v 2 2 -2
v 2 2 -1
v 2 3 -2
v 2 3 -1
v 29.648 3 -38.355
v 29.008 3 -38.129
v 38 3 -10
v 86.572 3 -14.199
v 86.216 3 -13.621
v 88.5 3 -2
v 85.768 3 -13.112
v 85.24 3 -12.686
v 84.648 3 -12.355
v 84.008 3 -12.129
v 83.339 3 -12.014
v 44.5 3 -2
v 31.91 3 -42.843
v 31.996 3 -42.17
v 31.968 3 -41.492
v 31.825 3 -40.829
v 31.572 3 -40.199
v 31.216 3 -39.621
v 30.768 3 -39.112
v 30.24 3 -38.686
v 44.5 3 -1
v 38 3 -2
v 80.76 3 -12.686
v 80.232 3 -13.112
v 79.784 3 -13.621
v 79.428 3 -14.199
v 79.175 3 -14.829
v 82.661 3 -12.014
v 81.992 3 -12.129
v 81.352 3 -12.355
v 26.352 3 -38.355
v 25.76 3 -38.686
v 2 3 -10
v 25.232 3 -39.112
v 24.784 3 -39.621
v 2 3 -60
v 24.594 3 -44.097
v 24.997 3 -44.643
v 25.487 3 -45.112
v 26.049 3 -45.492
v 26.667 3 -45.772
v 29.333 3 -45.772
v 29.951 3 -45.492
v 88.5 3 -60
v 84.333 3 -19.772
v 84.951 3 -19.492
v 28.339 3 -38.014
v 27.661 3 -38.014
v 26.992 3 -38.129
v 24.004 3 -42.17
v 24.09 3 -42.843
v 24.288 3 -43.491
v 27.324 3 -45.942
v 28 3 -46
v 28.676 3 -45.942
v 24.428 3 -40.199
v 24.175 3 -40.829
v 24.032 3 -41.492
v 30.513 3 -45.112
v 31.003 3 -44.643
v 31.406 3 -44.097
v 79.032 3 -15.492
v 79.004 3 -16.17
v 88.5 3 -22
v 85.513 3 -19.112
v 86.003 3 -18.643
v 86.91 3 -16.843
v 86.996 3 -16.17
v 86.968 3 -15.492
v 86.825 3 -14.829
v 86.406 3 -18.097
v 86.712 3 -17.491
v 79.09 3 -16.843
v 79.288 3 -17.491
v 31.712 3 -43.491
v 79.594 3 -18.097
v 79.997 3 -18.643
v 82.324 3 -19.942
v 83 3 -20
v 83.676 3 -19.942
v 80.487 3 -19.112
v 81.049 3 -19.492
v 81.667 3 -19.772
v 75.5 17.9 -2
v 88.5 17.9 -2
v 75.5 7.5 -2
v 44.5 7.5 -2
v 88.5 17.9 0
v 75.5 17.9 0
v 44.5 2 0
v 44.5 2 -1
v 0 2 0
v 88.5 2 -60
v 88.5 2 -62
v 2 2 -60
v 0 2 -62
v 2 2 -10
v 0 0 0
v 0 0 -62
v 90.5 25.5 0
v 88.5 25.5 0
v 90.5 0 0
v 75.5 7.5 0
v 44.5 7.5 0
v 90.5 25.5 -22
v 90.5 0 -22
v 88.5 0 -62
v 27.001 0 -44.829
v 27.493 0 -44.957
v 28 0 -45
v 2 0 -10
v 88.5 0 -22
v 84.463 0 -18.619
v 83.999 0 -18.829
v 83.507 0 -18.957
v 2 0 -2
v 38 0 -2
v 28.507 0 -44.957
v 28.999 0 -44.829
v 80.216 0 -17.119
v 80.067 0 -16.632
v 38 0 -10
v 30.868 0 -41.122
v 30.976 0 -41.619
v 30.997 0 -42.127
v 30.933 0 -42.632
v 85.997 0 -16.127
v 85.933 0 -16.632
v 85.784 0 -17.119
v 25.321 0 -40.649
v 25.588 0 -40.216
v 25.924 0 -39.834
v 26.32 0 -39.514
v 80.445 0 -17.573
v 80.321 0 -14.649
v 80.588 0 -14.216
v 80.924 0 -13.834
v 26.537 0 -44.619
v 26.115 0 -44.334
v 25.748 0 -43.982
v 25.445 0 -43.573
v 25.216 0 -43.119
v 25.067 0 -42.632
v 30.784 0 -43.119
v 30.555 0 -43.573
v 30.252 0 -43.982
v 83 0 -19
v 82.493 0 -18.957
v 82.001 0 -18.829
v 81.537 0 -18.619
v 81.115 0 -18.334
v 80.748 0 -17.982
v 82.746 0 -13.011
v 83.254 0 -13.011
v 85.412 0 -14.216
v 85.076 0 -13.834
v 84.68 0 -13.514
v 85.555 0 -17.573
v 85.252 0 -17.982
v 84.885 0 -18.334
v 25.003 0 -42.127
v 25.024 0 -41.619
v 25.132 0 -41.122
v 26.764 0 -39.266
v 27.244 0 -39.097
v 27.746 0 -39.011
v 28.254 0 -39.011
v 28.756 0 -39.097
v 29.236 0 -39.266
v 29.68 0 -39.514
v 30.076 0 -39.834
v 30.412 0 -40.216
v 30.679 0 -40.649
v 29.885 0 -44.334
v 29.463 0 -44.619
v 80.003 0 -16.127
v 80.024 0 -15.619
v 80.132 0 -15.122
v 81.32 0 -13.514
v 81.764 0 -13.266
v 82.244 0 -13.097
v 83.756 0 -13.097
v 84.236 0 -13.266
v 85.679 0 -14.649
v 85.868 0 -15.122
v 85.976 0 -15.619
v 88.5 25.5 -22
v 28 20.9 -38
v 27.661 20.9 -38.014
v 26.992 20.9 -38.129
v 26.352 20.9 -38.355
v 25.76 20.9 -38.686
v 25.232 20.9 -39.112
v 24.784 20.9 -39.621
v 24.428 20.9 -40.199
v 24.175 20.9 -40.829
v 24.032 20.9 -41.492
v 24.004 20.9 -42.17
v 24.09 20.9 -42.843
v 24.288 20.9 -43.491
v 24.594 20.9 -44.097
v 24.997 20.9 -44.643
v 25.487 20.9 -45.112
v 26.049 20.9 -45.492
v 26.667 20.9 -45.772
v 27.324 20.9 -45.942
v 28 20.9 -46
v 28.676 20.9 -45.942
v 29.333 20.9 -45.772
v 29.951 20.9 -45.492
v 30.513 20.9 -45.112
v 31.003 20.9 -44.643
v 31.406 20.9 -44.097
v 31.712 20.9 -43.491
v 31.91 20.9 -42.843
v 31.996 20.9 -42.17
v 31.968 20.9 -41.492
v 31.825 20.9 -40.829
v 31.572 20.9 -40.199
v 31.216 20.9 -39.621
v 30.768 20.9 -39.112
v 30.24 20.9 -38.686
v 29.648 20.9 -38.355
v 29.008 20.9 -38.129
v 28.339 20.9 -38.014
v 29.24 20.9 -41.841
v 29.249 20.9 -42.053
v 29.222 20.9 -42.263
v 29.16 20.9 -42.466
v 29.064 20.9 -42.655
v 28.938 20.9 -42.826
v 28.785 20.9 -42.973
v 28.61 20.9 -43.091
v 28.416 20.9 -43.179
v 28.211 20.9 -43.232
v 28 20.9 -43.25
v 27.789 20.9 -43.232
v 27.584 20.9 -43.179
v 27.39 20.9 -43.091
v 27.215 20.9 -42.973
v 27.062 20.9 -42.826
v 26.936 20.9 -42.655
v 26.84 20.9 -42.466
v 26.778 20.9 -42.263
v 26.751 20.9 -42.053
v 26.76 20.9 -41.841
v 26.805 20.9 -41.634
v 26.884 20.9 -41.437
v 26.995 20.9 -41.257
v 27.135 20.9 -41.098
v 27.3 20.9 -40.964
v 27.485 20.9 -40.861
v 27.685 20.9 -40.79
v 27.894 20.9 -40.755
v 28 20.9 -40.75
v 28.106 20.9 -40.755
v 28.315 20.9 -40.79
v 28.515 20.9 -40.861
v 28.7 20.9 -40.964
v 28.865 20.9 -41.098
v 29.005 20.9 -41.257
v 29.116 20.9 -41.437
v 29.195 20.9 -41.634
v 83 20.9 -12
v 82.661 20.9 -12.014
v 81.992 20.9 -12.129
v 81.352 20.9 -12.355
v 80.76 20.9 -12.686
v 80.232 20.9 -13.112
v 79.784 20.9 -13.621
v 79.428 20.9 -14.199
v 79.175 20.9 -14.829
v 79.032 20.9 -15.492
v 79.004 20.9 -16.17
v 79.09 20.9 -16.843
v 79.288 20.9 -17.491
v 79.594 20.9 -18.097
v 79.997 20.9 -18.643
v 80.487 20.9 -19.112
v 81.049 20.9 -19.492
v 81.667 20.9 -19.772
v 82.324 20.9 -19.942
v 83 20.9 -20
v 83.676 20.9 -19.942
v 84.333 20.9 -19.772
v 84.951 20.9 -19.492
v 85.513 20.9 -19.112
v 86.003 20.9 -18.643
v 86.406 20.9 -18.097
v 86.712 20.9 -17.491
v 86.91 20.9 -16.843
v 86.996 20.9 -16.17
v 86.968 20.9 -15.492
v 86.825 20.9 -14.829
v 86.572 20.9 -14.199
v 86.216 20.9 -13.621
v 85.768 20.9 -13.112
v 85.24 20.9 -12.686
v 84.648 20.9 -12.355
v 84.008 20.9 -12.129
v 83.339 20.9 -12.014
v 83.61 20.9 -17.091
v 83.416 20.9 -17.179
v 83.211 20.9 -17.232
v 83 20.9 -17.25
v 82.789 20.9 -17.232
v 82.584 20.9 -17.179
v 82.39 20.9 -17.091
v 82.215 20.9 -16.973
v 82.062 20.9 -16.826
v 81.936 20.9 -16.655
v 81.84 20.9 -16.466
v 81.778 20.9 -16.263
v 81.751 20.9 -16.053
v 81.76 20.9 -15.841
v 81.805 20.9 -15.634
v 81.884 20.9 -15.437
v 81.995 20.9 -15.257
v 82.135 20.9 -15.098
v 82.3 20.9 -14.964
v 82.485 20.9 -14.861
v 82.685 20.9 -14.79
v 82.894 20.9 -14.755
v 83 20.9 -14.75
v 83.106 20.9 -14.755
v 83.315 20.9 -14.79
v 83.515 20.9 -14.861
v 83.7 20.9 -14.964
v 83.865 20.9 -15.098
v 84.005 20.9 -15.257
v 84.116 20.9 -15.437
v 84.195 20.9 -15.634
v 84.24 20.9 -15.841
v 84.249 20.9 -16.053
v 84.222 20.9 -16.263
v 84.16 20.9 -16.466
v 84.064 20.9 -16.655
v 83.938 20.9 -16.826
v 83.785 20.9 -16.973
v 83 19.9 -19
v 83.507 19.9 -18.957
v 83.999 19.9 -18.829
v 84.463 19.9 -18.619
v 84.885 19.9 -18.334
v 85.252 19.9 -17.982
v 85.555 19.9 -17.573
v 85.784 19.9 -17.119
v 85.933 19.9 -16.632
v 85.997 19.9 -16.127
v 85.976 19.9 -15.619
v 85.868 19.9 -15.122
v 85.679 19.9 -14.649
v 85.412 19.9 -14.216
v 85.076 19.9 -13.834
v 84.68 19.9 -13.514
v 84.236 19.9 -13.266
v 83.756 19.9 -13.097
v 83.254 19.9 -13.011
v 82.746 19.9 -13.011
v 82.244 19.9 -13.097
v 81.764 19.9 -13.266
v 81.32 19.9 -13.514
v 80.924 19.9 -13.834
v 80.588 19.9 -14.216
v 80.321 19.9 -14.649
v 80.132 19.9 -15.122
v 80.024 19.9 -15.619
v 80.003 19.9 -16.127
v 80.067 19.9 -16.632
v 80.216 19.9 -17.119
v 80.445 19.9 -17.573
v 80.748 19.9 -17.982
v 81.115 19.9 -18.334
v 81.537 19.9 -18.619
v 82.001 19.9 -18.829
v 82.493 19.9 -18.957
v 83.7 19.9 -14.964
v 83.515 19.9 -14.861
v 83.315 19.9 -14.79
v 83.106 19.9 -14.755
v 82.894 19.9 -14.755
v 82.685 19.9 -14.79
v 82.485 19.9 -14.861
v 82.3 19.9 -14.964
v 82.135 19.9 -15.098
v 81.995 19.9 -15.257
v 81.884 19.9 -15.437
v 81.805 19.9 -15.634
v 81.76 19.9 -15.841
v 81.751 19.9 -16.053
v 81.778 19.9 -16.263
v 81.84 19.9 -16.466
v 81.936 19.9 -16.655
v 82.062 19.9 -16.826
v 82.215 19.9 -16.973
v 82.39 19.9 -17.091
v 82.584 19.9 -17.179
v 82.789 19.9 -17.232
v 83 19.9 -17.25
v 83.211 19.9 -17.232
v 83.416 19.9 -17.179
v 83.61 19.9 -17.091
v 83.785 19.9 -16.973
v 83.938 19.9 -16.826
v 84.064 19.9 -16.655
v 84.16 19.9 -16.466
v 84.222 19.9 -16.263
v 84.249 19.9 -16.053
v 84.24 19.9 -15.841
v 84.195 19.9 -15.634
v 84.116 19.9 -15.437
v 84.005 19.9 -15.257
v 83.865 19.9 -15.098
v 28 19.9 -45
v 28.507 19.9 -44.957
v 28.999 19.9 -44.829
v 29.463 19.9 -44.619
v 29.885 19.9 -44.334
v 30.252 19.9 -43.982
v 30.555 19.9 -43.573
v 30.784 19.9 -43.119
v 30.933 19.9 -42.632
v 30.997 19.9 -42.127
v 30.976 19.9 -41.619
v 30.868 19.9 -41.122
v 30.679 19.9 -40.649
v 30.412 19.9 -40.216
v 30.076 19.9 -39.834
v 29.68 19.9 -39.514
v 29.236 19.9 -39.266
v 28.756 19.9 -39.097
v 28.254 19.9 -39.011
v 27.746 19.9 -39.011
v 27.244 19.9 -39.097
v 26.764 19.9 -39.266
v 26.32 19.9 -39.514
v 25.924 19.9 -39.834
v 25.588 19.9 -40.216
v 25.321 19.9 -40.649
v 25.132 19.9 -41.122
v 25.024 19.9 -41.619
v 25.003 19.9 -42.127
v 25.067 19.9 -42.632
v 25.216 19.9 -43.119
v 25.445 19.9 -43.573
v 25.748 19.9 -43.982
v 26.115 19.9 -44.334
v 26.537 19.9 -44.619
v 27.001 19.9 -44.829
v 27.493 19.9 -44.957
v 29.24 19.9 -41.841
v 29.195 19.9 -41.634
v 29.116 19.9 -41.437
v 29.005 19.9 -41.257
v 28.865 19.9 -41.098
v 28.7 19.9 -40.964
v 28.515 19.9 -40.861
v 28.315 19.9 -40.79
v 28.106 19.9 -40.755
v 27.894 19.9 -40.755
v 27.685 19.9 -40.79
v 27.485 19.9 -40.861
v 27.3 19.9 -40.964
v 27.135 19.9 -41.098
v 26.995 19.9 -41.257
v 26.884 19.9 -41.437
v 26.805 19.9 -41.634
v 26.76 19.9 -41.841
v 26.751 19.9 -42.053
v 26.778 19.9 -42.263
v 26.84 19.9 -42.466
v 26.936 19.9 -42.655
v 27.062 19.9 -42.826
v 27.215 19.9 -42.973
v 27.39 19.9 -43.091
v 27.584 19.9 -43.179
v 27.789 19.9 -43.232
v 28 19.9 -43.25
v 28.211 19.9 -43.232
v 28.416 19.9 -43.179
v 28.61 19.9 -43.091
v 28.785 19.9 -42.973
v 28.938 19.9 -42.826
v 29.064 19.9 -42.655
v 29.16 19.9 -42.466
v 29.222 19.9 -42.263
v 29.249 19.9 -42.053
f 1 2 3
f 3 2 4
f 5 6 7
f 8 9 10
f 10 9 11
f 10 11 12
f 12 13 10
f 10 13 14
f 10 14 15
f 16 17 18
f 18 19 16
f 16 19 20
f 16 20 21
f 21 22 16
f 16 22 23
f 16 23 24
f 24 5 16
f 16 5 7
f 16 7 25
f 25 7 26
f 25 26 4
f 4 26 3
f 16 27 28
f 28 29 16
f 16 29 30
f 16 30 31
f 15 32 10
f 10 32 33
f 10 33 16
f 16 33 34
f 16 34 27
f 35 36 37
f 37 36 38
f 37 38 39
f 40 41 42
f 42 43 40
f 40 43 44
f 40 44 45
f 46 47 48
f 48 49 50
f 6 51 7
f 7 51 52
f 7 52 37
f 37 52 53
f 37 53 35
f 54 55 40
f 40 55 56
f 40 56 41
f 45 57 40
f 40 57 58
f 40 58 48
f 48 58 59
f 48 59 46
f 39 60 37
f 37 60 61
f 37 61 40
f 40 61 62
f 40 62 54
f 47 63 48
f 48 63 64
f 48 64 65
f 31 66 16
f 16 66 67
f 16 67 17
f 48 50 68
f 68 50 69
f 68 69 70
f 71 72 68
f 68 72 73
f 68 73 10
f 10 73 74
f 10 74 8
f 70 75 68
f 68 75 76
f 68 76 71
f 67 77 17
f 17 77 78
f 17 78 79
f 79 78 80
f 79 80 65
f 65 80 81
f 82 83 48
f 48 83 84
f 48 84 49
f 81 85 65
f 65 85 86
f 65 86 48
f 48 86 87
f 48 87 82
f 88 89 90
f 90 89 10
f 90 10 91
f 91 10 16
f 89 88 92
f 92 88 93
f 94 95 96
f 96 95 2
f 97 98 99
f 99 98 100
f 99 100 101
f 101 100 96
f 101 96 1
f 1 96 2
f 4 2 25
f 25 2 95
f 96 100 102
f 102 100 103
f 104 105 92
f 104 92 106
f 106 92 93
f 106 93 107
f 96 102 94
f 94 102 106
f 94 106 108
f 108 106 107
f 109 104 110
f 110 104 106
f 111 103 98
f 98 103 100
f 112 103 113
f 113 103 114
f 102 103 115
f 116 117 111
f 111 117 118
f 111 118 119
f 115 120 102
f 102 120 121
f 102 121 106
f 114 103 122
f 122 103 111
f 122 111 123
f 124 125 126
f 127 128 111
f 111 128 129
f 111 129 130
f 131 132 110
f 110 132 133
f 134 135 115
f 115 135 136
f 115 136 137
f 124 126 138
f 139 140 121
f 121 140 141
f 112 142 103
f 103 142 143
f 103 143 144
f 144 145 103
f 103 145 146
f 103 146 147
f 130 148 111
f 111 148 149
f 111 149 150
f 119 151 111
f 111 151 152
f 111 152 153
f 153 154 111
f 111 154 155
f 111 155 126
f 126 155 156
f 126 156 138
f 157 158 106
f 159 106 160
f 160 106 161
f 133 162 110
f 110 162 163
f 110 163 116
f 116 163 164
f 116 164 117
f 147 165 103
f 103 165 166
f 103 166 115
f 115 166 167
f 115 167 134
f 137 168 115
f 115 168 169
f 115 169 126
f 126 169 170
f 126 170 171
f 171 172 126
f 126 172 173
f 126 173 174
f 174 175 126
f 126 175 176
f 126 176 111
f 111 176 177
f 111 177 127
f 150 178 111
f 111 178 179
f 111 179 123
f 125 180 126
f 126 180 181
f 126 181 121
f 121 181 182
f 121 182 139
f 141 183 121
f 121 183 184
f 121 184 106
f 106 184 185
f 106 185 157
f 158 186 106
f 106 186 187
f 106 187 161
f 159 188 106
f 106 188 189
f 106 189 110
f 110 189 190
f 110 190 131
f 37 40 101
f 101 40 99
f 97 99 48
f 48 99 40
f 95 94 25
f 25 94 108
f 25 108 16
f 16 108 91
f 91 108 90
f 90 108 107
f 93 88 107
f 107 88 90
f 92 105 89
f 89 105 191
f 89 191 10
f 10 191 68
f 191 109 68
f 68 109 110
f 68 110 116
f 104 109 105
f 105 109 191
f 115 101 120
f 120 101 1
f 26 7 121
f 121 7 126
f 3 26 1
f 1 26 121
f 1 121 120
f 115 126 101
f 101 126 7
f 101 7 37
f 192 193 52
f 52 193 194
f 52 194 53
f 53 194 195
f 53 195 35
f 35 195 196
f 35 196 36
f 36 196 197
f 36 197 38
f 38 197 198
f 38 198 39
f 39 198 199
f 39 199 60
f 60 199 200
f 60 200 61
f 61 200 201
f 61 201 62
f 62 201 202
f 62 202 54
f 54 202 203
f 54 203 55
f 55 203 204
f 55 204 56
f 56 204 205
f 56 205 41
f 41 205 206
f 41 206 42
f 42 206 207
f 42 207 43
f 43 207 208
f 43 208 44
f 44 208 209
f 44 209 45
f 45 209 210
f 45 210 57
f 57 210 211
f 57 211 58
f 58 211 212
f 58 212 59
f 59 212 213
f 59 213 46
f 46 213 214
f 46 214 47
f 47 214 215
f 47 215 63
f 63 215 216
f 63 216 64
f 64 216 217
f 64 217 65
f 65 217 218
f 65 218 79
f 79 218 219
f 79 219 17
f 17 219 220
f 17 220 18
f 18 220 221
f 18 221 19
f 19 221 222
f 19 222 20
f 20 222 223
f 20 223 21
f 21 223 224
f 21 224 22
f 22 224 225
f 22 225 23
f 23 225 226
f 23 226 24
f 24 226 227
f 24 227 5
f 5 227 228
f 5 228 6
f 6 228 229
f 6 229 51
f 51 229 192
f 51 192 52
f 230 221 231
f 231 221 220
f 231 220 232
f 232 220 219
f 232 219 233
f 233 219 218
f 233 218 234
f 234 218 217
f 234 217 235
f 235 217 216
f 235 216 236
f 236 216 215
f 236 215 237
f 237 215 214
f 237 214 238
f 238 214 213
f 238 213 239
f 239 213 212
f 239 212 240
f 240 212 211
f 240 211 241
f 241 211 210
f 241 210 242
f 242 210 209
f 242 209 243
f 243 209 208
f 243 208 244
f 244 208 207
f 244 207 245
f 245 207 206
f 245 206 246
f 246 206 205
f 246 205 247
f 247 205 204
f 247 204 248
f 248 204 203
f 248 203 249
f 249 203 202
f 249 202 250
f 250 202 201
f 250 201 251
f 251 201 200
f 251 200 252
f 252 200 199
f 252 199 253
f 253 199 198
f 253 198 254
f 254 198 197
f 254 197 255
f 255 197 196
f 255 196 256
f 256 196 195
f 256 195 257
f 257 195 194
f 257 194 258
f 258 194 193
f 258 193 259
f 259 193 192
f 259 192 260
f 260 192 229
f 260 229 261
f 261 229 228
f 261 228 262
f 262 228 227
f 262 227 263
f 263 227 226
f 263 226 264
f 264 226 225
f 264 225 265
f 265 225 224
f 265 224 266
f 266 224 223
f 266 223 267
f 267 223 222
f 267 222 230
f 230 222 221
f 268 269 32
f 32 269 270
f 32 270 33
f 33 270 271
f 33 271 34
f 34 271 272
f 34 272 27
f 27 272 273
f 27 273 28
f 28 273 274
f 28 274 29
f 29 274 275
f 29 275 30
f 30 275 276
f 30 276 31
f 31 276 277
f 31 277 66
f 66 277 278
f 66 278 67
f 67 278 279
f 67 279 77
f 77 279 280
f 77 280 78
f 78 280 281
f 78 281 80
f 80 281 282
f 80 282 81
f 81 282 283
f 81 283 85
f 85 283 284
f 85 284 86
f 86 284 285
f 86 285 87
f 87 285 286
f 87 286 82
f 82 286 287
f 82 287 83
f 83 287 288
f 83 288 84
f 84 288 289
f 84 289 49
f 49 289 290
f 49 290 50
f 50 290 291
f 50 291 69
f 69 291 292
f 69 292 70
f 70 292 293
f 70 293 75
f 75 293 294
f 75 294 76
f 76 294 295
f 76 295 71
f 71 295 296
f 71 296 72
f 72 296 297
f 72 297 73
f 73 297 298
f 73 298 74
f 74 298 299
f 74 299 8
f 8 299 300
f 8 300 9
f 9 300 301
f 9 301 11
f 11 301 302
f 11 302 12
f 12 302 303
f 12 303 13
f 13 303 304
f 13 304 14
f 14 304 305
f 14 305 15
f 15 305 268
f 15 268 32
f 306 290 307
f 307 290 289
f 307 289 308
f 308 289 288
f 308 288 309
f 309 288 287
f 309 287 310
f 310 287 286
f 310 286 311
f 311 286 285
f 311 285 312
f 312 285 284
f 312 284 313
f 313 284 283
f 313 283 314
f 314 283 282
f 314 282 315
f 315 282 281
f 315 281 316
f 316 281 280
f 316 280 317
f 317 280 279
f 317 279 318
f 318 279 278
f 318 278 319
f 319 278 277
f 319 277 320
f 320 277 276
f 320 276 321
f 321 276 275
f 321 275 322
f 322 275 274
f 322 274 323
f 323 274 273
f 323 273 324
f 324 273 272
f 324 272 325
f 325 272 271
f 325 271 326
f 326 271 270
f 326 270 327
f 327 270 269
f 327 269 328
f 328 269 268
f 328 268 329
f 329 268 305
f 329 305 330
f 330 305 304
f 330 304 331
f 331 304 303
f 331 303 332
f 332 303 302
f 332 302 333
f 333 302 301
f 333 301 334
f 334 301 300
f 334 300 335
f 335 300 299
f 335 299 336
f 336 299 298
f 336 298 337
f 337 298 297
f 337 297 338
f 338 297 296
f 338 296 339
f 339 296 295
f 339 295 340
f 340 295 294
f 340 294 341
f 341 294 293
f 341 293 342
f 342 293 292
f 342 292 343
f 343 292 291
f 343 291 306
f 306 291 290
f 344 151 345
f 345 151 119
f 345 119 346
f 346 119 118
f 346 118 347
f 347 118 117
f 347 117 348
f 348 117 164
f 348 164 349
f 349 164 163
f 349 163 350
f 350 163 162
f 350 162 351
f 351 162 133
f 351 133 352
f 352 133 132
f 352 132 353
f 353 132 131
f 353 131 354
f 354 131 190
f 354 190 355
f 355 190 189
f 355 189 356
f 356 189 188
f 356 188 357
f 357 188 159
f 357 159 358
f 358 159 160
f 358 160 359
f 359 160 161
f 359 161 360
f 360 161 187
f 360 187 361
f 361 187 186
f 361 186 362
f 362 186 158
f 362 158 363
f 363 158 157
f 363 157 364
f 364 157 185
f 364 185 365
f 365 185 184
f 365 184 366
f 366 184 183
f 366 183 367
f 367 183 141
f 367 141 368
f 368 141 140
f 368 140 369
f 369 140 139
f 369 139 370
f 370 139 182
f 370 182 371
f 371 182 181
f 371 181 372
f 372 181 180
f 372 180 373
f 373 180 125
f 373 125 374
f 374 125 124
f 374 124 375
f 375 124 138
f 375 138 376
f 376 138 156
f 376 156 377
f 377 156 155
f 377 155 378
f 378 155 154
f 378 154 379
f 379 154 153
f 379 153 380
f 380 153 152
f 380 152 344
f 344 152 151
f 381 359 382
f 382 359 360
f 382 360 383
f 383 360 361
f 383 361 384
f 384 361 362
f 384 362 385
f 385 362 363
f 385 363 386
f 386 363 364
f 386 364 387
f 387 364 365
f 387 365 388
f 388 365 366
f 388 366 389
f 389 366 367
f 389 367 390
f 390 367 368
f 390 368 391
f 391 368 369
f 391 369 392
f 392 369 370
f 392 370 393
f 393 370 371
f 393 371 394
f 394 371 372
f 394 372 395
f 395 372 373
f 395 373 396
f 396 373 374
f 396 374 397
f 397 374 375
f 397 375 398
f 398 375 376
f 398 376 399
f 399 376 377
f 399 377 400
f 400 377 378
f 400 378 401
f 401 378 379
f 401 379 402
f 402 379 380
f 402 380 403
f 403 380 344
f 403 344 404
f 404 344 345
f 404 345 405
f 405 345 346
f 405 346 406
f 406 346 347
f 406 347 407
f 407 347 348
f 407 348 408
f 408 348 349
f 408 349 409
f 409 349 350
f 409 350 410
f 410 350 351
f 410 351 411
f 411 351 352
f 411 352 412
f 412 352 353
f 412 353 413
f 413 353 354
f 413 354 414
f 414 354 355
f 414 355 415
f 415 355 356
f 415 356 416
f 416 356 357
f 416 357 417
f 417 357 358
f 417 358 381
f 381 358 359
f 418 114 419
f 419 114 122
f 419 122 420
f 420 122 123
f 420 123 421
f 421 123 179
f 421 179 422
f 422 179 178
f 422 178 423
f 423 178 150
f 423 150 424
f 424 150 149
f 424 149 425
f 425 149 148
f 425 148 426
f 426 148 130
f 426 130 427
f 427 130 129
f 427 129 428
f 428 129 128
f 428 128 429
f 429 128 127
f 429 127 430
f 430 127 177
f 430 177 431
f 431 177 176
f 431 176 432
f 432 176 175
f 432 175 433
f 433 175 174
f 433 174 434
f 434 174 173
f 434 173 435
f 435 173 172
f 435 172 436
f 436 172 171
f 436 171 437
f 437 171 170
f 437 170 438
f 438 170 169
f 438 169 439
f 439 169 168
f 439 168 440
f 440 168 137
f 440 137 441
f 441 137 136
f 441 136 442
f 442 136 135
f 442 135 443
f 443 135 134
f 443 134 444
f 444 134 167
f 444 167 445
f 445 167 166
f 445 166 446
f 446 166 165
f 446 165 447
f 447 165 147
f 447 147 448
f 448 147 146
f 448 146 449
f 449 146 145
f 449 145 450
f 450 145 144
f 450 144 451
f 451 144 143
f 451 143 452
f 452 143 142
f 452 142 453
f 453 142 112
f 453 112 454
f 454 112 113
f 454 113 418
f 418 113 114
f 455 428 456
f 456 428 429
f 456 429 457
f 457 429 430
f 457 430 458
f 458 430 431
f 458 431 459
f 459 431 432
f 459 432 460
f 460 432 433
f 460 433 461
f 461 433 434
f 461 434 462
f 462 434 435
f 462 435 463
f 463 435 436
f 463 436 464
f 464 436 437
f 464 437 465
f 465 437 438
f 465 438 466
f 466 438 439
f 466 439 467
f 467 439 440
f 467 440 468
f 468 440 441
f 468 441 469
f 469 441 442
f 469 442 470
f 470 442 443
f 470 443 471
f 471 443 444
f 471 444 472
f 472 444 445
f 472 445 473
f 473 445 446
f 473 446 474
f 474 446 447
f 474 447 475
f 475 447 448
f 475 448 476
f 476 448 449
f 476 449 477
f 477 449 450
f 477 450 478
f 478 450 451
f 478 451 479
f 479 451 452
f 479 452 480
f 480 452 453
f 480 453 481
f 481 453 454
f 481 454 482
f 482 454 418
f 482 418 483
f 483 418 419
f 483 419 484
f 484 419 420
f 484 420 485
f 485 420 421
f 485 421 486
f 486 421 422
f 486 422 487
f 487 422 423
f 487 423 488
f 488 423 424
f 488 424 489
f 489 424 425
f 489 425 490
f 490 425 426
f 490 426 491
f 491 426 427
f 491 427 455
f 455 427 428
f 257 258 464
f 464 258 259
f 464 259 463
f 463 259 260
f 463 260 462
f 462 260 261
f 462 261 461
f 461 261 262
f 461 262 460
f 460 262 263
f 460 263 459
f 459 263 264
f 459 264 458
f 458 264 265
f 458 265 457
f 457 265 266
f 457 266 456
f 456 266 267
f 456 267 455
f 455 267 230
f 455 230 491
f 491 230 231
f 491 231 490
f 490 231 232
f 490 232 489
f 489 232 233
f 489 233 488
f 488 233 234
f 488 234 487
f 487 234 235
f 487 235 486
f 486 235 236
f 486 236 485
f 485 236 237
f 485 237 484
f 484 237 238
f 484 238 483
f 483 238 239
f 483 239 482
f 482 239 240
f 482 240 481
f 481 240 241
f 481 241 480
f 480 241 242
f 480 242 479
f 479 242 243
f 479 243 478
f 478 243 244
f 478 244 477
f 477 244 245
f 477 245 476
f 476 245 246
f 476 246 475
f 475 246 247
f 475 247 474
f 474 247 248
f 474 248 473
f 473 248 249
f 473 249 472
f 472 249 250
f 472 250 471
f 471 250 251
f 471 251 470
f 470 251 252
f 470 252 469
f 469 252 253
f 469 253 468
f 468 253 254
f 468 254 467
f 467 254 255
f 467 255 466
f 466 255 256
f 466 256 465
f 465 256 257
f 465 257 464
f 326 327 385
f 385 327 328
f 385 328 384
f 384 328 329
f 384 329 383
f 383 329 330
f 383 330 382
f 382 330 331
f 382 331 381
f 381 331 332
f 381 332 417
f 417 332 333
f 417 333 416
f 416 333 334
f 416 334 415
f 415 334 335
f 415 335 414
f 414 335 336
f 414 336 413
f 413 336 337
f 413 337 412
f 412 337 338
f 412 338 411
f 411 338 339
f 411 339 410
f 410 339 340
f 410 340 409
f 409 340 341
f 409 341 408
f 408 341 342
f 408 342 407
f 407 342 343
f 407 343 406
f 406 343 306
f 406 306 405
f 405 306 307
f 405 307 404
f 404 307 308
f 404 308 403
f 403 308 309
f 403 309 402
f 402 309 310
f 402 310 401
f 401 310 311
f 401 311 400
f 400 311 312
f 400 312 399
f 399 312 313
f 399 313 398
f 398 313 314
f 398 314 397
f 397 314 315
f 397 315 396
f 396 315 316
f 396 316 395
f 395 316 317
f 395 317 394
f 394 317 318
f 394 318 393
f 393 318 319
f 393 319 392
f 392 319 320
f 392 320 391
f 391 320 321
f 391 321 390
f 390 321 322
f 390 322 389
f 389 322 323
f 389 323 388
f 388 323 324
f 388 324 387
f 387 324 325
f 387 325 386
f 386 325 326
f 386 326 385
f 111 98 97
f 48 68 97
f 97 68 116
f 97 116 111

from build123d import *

# Parameters (mm, degrees)
SKETCH1_W           = 90.5
SKETCH1_H           = 62
BOSS_EXTRUDE2_DEPTH = 2
SKETCH5_W           = 88.5
SKETCH5_H           = 59
BOSS_EXTRUDE4_DEPTH = 1
SKETCH6_W           = 46
SKETCH6_H           = 2
BOSS_EXTRUDE5_DEPTH = 5.5
SKETCH7_W           = 15
SKETCH7_H           = 2
BOSS_EXTRUDE6_DEPTH = 10.4
SKETCH8_W           = 2
SKETCH8_H           = 22
BOSS_EXTRUDE7_DEPTH = 22.5
SKETCH9_W           = 36
SKETCH9_H           = 8
CUT_EXTRUDE3_DEPTH  = 15.9
SKETCH10_R          = 4
BOSS_EXTRUDE9_DEPTH = 17.9
SKETCH14_R          = 3
CUT_EXTRUDE7_DEPTH  = 19.9
SKETCH15_R          = 1.25
CUT_EXTRUDE8_DEPTH  = 113.625485571
SKETCH17_W          = 2
SKETCH17_H          = 40
CUT_EXTRUDE9_DEPTH  = 112.98437391


with BuildPart() as part:
    # Sketch1 → Boss-Extrude2 (new body)
    with BuildSketch(Plane(origin=(0, 0, 0), x_dir=(1, 0, 0), z_dir=(0, 1, 0))):
        with Locations((45.25, 31)):
            Rectangle(SKETCH1_W, SKETCH1_H)
    extrude(amount=BOSS_EXTRUDE2_DEPTH)

    # Sketch5 → Boss-Extrude4 (add)
    with BuildSketch(Plane(origin=(0, 2, 0), x_dir=(1, 0, 0), z_dir=(0, 1, 0))):
        with Locations((46.25, 30.5)):
            Rectangle(SKETCH5_W, SKETCH5_H)
    extrude(amount=BOSS_EXTRUDE4_DEPTH)

    # Sketch6 → Boss-Extrude5 (add)
    with BuildSketch(Plane(origin=(0, 2, 0), x_dir=(1, 0, 0), z_dir=(0, 1, 0))):
        with Locations((67.5, 1)):
            Rectangle(SKETCH6_W, SKETCH6_H)
    extrude(amount=BOSS_EXTRUDE5_DEPTH)

    # Sketch7 → Boss-Extrude6 (add)
    with BuildSketch(Plane(origin=(0, 7.5, 0), x_dir=(1, 0, 0), z_dir=(0, 1, 0))):
        with Locations((83, 1)):
            Rectangle(SKETCH7_W, SKETCH7_H)
    extrude(amount=BOSS_EXTRUDE6_DEPTH)

    # Sketch8 → Boss-Extrude7 (add)
    with BuildSketch(Plane(origin=(0, 3, 0), x_dir=(1, 0, 0), z_dir=(0, 1, 0))):
        with Locations((89.5, 11)):
            Rectangle(SKETCH8_W, SKETCH8_H)
    extrude(amount=BOSS_EXTRUDE7_DEPTH)

    # Sketch9 → Cut-Extrude3 (cut)
    with BuildSketch(Plane(origin=(0, 3, 0), x_dir=(1, 0, 0), z_dir=(0, 1, 0))):
        with Locations((20, 6)):
            Rectangle(SKETCH9_W, SKETCH9_H)
    extrude(amount=-CUT_EXTRUDE3_DEPTH, mode=Mode.SUBTRACT)

    # Sketch10 → Boss-Extrude9 (add)
    with BuildSketch(Plane(origin=(0, 3, 0), x_dir=(1, 0, 0), z_dir=(0, 1, 0))):
        with Locations(Location((28, 42, 0), (0, 0, 90))):
            Circle(SKETCH10_R)
        with Locations(Location((83, 16, 0), (0, 0, 90))):
            Circle(SKETCH10_R)
    extrude(amount=BOSS_EXTRUDE9_DEPTH)

    # Sketch14 → Cut-Extrude7 (cut)
    with BuildSketch(Plane.XZ):
        with Locations(Location((28, -42, 0), (0, 0, 270))):
            Circle(SKETCH14_R)
        with Locations(Location((83, -16, 0), (0, 0, 270))):
            Circle(SKETCH14_R)
    extrude(amount=-CUT_EXTRUDE7_DEPTH, mode=Mode.SUBTRACT)

    # Sketch15 → Cut-Extrude8 (cut, through all)
    with BuildSketch(Plane.XZ):
        with Locations(Location((28, -42, 0), (0, 0, 270))):
            Circle(SKETCH15_R)
        with Locations(Location((83, -16, 0), (0, 0, 270))):
            Circle(SKETCH15_R)
    extrude(amount=-CUT_EXTRUDE8_DEPTH, mode=Mode.SUBTRACT)

    # Sketch17 → Cut-Extrude9 (cut, through all)
    with BuildSketch(Plane(origin=(0, 3, 0), x_dir=(1, 0, 0), z_dir=(0, 1, 0))):
        with Locations((89.5, 42)):
            Rectangle(SKETCH17_W, SKETCH17_H)
    extrude(amount=-CUT_EXTRUDE9_DEPTH, mode=Mode.SUBTRACT)


solid = part.part
